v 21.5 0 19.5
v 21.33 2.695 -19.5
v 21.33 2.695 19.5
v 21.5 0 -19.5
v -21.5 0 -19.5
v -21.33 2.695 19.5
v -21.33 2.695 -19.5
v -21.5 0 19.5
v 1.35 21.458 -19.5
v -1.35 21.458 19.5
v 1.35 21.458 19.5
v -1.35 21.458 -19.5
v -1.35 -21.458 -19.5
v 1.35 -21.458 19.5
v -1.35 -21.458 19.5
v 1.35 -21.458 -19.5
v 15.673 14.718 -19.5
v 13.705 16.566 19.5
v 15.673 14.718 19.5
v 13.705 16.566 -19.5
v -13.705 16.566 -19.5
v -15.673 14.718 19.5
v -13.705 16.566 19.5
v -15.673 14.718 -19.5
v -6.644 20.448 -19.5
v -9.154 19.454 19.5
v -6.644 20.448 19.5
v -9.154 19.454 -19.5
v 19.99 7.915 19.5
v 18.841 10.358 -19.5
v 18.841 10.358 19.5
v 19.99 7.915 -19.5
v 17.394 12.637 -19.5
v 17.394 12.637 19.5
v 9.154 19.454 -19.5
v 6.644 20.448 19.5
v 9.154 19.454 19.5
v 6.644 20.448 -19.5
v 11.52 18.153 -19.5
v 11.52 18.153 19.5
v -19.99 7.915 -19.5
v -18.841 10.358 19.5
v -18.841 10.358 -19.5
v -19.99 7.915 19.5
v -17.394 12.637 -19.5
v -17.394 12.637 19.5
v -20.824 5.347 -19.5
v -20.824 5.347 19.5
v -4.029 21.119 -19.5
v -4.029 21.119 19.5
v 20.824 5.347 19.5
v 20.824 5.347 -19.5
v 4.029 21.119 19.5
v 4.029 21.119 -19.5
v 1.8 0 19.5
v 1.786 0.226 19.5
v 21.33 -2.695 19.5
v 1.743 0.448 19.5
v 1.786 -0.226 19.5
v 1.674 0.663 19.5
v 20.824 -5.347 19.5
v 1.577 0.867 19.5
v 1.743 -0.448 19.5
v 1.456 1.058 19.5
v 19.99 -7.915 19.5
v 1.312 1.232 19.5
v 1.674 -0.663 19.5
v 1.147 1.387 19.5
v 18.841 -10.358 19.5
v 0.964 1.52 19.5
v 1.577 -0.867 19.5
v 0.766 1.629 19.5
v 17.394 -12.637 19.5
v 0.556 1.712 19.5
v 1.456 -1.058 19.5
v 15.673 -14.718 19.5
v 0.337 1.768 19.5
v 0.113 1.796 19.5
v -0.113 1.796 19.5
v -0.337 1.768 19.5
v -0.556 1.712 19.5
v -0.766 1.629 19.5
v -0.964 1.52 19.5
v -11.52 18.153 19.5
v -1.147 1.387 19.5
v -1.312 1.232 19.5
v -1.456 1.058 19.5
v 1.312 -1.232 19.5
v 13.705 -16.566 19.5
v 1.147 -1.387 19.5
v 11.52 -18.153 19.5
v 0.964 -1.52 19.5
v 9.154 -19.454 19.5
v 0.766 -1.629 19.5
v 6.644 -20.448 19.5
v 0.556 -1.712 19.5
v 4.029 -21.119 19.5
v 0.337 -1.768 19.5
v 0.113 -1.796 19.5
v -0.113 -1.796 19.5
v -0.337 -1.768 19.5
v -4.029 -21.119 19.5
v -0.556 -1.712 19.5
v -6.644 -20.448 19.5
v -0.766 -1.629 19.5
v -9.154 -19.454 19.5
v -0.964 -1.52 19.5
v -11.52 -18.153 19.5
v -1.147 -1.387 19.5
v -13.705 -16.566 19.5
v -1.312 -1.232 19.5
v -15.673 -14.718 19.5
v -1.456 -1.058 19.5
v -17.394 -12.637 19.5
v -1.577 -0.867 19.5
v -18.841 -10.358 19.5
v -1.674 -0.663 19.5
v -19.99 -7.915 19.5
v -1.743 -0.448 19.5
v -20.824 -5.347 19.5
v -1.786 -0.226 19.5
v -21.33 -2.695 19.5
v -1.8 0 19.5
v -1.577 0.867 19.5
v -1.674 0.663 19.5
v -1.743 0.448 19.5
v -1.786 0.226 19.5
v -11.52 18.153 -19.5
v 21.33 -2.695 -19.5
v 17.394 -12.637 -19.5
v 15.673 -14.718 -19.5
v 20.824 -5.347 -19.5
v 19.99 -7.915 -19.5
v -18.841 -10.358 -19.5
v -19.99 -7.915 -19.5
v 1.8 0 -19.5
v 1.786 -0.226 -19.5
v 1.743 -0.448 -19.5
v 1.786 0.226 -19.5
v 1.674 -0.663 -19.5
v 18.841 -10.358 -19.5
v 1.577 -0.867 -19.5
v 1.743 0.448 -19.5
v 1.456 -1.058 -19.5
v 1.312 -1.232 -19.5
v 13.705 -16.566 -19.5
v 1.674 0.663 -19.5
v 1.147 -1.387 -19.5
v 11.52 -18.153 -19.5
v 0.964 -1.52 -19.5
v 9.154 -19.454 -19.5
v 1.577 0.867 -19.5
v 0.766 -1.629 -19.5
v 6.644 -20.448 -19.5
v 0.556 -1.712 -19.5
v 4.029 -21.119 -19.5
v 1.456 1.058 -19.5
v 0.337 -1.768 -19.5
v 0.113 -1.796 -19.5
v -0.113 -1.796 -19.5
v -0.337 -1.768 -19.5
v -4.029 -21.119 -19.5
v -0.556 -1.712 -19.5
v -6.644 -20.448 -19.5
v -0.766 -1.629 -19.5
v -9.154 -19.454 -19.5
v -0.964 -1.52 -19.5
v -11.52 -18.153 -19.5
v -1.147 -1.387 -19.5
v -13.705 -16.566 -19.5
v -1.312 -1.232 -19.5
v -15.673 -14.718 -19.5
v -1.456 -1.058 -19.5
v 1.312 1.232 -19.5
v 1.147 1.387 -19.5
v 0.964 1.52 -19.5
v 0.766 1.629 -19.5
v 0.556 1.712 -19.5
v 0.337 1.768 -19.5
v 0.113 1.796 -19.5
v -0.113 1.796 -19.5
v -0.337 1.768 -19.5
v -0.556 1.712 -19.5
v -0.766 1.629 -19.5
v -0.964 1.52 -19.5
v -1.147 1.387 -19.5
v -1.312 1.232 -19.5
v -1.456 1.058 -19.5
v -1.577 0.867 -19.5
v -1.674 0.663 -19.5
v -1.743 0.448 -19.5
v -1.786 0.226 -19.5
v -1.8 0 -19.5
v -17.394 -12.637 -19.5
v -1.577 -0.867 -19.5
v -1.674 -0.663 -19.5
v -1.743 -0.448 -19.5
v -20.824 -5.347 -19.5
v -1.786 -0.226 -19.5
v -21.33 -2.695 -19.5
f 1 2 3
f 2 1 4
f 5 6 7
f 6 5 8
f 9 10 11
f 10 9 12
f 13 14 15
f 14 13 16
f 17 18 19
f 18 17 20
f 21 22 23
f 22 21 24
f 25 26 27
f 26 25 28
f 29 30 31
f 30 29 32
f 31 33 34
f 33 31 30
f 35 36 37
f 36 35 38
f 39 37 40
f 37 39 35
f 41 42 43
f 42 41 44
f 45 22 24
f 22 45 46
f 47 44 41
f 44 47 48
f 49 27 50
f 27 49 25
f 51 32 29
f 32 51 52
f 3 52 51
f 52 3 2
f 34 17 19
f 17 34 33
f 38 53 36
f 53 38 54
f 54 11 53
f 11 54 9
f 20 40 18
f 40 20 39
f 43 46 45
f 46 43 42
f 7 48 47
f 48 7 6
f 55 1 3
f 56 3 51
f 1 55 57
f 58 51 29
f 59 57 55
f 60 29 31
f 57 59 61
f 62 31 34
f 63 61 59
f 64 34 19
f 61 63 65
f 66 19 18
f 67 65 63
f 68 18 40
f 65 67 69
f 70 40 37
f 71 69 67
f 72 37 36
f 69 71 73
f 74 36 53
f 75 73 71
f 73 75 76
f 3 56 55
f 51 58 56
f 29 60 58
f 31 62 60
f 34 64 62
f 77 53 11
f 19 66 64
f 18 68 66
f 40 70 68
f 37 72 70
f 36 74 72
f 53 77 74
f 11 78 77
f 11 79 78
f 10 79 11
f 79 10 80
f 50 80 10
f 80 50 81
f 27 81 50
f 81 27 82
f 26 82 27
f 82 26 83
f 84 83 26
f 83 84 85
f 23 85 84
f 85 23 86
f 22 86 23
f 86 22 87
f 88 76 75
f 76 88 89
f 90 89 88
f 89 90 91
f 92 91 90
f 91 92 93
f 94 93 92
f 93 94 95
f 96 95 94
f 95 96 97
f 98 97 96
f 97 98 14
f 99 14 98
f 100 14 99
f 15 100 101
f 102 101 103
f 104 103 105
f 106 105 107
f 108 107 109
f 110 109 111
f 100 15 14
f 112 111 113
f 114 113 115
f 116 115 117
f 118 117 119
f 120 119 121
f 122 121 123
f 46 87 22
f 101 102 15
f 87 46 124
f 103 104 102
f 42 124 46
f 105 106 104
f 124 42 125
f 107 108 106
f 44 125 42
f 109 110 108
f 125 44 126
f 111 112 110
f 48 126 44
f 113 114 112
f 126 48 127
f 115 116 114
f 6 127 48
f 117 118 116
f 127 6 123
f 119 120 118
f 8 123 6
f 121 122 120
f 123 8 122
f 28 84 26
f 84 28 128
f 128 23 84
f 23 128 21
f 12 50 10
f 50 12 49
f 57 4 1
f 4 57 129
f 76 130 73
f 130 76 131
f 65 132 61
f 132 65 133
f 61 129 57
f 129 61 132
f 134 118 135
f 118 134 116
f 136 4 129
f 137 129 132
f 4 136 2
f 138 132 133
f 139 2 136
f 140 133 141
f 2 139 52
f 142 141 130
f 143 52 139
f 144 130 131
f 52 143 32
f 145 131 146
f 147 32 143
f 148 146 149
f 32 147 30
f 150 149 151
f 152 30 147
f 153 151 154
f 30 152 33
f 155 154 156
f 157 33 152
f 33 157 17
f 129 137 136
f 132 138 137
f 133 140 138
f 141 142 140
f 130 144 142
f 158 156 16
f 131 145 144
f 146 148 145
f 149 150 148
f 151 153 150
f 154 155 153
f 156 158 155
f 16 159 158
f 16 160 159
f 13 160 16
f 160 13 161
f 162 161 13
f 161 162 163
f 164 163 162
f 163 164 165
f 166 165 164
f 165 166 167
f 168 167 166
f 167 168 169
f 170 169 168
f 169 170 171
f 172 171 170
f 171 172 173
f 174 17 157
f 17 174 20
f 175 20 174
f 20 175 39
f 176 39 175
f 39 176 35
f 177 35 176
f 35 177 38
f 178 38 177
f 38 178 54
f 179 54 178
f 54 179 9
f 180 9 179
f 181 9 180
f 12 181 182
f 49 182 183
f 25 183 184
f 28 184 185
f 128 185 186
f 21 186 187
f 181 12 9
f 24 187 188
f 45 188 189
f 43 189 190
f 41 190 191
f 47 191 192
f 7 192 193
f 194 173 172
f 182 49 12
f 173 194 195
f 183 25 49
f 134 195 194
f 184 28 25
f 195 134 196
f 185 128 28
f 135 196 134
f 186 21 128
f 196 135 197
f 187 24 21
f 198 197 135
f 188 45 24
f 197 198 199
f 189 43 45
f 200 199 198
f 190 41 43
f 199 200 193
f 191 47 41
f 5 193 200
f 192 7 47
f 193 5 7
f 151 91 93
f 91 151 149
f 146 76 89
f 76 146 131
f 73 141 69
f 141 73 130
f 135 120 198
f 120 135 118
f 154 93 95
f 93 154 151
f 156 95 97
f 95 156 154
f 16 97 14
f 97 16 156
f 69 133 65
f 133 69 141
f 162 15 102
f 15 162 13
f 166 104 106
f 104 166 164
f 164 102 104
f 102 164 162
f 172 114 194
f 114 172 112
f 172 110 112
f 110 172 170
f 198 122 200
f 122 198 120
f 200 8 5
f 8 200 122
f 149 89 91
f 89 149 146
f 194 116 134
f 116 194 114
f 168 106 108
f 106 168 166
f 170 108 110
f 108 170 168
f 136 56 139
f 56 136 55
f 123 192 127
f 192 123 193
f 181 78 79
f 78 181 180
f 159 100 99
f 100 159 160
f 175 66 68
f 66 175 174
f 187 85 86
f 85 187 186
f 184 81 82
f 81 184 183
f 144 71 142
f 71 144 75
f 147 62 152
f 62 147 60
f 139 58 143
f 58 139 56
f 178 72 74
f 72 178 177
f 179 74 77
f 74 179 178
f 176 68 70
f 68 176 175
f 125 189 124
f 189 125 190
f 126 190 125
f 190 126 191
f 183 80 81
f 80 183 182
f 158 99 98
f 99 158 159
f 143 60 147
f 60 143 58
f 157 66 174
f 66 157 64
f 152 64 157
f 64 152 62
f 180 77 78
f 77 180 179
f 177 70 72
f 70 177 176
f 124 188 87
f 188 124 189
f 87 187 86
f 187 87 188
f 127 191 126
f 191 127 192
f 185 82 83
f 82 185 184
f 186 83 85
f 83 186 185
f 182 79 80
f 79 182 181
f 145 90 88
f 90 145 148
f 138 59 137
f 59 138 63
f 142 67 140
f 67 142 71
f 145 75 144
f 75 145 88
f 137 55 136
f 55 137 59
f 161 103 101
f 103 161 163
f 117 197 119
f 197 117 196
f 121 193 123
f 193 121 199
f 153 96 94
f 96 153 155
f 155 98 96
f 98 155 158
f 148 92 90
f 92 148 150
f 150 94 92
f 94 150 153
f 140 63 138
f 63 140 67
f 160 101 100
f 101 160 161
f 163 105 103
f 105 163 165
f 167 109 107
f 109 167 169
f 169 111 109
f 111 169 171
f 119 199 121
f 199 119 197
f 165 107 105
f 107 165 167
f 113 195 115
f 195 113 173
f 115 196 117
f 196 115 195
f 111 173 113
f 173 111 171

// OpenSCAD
$fn = 50;


difference() {
	union() {
		translate(v = [0, 0, -19.5000000000]) {
			cylinder(h = 39, r = 21.5000000000);
		}
	}
	union() {
		translate(v = [0, 0, -100.0000000000]) {
			cylinder(h = 200, r = 1.8000000000);
		}
	}
}
